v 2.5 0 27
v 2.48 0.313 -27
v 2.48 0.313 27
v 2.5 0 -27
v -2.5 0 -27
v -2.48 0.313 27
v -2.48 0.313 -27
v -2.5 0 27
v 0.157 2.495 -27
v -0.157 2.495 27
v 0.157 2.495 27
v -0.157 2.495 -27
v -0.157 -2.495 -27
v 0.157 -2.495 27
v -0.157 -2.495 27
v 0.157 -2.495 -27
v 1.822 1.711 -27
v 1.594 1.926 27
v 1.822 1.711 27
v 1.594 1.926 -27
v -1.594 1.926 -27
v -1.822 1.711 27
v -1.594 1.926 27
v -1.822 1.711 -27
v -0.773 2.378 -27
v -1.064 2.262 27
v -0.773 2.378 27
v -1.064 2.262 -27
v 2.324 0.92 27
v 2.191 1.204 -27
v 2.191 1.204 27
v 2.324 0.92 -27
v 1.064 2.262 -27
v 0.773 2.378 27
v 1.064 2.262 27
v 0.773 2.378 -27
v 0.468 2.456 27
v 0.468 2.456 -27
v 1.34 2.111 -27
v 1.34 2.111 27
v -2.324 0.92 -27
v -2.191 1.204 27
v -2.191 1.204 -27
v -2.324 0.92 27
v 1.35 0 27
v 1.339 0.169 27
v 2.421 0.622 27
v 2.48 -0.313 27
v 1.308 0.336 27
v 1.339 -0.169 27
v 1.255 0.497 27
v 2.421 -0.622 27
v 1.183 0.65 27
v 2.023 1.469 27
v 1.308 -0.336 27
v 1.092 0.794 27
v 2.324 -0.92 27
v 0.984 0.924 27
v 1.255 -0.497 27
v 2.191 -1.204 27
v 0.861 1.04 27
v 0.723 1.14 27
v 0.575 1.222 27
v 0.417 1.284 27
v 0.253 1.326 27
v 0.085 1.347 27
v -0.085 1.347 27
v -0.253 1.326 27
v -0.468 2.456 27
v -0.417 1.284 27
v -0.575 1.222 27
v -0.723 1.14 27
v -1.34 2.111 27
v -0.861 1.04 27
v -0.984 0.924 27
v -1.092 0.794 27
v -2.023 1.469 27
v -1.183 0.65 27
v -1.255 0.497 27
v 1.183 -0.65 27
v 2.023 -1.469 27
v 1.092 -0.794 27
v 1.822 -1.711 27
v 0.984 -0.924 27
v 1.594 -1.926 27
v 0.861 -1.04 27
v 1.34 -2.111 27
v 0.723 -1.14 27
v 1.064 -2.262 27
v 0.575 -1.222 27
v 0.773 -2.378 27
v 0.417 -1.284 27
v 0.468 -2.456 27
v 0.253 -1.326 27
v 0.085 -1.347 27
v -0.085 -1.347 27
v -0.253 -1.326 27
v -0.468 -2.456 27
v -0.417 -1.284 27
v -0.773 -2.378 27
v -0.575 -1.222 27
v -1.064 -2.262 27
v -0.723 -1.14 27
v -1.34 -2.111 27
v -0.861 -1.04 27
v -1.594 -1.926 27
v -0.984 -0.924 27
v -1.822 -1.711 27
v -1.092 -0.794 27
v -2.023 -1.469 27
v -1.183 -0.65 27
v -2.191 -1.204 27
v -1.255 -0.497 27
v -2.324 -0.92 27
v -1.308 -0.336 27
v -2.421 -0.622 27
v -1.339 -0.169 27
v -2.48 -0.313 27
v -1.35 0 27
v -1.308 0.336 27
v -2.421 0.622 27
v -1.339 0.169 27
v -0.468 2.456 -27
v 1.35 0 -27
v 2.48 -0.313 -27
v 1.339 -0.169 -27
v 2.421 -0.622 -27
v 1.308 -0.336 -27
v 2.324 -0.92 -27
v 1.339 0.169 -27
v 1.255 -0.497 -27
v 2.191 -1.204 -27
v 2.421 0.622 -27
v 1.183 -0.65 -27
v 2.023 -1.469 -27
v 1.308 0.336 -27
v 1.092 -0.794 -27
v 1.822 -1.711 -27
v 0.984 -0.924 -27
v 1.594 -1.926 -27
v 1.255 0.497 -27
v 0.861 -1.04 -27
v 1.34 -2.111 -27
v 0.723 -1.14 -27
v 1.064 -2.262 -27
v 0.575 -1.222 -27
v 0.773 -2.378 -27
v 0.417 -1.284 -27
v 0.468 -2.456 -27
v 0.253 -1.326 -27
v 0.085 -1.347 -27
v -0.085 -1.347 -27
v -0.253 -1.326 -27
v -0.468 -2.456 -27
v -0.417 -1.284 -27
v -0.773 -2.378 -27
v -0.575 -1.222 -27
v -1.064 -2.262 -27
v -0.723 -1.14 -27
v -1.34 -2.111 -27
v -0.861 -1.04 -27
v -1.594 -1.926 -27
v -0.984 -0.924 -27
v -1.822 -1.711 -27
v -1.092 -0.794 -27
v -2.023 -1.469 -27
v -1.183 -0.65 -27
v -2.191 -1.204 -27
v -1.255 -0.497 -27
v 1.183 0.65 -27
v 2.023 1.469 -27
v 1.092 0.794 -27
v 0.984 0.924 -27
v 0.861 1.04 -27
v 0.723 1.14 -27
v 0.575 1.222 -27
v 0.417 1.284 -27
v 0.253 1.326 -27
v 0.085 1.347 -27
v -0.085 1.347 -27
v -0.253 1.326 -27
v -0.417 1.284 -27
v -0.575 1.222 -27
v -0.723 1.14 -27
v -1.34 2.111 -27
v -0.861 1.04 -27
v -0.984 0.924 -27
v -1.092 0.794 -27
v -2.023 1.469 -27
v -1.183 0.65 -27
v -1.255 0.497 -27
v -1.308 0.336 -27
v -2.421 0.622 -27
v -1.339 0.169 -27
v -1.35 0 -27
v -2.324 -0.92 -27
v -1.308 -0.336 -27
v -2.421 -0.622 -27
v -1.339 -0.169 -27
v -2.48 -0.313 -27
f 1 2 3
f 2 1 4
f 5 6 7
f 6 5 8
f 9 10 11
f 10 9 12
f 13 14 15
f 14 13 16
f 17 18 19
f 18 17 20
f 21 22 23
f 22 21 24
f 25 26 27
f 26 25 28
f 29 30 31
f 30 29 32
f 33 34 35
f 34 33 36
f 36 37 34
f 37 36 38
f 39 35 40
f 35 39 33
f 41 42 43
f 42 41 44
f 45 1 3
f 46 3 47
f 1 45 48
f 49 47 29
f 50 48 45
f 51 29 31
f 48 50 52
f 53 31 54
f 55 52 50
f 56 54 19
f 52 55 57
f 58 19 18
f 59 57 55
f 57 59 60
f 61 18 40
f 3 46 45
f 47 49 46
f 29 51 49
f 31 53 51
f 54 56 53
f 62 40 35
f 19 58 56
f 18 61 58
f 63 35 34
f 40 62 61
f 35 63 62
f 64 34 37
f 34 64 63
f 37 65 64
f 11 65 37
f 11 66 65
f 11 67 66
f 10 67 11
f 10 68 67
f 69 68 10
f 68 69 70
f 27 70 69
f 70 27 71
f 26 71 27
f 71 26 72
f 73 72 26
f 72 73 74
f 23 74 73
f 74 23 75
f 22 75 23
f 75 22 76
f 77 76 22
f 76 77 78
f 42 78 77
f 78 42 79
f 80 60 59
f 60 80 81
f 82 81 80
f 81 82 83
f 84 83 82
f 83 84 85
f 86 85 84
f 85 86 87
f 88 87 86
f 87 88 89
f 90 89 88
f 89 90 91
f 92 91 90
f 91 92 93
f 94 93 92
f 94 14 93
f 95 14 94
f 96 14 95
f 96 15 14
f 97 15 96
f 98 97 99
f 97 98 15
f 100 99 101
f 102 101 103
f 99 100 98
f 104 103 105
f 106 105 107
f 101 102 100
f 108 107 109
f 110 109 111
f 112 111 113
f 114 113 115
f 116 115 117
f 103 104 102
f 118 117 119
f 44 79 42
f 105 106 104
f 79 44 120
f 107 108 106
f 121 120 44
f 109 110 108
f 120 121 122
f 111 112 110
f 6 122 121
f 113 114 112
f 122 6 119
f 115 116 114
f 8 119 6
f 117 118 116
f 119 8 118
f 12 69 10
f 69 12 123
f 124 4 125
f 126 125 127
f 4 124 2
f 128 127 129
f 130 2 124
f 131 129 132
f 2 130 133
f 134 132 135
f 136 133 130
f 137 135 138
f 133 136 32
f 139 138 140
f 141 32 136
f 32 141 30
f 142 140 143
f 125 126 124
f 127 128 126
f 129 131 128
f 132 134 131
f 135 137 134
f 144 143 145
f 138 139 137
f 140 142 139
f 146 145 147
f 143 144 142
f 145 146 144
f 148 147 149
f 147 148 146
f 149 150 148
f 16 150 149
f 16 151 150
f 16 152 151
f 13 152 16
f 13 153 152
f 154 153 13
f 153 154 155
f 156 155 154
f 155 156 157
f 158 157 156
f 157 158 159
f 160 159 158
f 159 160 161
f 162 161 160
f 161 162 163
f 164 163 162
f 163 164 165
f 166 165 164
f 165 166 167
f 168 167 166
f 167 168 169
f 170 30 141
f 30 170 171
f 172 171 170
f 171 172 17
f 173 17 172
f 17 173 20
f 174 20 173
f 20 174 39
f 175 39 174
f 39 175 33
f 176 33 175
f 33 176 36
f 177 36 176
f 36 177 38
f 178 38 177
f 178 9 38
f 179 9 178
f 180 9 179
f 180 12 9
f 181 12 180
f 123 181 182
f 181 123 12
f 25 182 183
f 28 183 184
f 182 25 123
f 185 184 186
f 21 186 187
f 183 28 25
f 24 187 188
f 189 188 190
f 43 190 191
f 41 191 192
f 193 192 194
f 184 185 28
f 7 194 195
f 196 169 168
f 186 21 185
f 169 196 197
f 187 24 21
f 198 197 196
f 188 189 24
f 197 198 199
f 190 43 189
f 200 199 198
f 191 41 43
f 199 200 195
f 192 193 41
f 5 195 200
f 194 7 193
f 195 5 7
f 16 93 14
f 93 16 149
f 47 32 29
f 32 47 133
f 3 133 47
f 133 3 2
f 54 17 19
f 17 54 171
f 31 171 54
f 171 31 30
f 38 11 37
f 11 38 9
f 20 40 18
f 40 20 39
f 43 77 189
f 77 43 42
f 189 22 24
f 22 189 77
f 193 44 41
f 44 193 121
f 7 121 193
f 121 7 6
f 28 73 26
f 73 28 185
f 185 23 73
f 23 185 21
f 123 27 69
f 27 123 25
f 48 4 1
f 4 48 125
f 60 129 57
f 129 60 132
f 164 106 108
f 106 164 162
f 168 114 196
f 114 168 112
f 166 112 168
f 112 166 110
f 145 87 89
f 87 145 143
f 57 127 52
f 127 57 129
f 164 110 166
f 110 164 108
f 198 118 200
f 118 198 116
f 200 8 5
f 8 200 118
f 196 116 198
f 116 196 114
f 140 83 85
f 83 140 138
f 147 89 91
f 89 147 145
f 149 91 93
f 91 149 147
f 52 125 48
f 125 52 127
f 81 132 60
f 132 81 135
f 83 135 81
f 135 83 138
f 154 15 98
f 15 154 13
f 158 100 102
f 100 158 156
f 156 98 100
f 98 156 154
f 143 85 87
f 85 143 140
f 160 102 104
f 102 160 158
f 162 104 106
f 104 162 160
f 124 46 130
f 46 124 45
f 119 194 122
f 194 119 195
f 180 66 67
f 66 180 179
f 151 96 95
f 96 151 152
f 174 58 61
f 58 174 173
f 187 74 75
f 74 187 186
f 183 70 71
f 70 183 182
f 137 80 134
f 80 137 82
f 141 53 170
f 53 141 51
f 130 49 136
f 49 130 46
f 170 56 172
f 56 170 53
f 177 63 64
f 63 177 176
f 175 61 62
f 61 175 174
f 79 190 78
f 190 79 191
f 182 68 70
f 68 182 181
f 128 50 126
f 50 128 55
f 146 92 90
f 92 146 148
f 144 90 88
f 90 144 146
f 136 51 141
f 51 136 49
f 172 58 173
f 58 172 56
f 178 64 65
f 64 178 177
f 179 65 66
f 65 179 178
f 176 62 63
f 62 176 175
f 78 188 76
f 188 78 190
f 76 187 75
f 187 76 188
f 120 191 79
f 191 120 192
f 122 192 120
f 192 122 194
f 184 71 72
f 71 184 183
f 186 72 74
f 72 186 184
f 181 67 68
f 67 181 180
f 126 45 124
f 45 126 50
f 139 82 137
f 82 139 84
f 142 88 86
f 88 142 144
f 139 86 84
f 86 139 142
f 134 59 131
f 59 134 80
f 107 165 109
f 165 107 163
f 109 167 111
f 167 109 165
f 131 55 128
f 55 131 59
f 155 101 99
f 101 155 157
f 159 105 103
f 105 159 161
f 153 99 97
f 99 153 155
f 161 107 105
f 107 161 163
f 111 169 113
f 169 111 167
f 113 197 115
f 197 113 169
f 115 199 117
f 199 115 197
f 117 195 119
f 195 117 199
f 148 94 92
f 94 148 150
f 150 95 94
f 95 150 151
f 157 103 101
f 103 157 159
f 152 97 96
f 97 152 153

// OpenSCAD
$fn = 50;


difference() {
	union() {
		translate(v = [0, 0, -27.0000000000]) {
			cylinder(h = 54, r = 2.5000000000);
		}
	}
	union() {
		translate(v = [0, 0, -100.0000000000]) {
			cylinder(h = 200, r = 1.3500000000);
		}
	}
}
